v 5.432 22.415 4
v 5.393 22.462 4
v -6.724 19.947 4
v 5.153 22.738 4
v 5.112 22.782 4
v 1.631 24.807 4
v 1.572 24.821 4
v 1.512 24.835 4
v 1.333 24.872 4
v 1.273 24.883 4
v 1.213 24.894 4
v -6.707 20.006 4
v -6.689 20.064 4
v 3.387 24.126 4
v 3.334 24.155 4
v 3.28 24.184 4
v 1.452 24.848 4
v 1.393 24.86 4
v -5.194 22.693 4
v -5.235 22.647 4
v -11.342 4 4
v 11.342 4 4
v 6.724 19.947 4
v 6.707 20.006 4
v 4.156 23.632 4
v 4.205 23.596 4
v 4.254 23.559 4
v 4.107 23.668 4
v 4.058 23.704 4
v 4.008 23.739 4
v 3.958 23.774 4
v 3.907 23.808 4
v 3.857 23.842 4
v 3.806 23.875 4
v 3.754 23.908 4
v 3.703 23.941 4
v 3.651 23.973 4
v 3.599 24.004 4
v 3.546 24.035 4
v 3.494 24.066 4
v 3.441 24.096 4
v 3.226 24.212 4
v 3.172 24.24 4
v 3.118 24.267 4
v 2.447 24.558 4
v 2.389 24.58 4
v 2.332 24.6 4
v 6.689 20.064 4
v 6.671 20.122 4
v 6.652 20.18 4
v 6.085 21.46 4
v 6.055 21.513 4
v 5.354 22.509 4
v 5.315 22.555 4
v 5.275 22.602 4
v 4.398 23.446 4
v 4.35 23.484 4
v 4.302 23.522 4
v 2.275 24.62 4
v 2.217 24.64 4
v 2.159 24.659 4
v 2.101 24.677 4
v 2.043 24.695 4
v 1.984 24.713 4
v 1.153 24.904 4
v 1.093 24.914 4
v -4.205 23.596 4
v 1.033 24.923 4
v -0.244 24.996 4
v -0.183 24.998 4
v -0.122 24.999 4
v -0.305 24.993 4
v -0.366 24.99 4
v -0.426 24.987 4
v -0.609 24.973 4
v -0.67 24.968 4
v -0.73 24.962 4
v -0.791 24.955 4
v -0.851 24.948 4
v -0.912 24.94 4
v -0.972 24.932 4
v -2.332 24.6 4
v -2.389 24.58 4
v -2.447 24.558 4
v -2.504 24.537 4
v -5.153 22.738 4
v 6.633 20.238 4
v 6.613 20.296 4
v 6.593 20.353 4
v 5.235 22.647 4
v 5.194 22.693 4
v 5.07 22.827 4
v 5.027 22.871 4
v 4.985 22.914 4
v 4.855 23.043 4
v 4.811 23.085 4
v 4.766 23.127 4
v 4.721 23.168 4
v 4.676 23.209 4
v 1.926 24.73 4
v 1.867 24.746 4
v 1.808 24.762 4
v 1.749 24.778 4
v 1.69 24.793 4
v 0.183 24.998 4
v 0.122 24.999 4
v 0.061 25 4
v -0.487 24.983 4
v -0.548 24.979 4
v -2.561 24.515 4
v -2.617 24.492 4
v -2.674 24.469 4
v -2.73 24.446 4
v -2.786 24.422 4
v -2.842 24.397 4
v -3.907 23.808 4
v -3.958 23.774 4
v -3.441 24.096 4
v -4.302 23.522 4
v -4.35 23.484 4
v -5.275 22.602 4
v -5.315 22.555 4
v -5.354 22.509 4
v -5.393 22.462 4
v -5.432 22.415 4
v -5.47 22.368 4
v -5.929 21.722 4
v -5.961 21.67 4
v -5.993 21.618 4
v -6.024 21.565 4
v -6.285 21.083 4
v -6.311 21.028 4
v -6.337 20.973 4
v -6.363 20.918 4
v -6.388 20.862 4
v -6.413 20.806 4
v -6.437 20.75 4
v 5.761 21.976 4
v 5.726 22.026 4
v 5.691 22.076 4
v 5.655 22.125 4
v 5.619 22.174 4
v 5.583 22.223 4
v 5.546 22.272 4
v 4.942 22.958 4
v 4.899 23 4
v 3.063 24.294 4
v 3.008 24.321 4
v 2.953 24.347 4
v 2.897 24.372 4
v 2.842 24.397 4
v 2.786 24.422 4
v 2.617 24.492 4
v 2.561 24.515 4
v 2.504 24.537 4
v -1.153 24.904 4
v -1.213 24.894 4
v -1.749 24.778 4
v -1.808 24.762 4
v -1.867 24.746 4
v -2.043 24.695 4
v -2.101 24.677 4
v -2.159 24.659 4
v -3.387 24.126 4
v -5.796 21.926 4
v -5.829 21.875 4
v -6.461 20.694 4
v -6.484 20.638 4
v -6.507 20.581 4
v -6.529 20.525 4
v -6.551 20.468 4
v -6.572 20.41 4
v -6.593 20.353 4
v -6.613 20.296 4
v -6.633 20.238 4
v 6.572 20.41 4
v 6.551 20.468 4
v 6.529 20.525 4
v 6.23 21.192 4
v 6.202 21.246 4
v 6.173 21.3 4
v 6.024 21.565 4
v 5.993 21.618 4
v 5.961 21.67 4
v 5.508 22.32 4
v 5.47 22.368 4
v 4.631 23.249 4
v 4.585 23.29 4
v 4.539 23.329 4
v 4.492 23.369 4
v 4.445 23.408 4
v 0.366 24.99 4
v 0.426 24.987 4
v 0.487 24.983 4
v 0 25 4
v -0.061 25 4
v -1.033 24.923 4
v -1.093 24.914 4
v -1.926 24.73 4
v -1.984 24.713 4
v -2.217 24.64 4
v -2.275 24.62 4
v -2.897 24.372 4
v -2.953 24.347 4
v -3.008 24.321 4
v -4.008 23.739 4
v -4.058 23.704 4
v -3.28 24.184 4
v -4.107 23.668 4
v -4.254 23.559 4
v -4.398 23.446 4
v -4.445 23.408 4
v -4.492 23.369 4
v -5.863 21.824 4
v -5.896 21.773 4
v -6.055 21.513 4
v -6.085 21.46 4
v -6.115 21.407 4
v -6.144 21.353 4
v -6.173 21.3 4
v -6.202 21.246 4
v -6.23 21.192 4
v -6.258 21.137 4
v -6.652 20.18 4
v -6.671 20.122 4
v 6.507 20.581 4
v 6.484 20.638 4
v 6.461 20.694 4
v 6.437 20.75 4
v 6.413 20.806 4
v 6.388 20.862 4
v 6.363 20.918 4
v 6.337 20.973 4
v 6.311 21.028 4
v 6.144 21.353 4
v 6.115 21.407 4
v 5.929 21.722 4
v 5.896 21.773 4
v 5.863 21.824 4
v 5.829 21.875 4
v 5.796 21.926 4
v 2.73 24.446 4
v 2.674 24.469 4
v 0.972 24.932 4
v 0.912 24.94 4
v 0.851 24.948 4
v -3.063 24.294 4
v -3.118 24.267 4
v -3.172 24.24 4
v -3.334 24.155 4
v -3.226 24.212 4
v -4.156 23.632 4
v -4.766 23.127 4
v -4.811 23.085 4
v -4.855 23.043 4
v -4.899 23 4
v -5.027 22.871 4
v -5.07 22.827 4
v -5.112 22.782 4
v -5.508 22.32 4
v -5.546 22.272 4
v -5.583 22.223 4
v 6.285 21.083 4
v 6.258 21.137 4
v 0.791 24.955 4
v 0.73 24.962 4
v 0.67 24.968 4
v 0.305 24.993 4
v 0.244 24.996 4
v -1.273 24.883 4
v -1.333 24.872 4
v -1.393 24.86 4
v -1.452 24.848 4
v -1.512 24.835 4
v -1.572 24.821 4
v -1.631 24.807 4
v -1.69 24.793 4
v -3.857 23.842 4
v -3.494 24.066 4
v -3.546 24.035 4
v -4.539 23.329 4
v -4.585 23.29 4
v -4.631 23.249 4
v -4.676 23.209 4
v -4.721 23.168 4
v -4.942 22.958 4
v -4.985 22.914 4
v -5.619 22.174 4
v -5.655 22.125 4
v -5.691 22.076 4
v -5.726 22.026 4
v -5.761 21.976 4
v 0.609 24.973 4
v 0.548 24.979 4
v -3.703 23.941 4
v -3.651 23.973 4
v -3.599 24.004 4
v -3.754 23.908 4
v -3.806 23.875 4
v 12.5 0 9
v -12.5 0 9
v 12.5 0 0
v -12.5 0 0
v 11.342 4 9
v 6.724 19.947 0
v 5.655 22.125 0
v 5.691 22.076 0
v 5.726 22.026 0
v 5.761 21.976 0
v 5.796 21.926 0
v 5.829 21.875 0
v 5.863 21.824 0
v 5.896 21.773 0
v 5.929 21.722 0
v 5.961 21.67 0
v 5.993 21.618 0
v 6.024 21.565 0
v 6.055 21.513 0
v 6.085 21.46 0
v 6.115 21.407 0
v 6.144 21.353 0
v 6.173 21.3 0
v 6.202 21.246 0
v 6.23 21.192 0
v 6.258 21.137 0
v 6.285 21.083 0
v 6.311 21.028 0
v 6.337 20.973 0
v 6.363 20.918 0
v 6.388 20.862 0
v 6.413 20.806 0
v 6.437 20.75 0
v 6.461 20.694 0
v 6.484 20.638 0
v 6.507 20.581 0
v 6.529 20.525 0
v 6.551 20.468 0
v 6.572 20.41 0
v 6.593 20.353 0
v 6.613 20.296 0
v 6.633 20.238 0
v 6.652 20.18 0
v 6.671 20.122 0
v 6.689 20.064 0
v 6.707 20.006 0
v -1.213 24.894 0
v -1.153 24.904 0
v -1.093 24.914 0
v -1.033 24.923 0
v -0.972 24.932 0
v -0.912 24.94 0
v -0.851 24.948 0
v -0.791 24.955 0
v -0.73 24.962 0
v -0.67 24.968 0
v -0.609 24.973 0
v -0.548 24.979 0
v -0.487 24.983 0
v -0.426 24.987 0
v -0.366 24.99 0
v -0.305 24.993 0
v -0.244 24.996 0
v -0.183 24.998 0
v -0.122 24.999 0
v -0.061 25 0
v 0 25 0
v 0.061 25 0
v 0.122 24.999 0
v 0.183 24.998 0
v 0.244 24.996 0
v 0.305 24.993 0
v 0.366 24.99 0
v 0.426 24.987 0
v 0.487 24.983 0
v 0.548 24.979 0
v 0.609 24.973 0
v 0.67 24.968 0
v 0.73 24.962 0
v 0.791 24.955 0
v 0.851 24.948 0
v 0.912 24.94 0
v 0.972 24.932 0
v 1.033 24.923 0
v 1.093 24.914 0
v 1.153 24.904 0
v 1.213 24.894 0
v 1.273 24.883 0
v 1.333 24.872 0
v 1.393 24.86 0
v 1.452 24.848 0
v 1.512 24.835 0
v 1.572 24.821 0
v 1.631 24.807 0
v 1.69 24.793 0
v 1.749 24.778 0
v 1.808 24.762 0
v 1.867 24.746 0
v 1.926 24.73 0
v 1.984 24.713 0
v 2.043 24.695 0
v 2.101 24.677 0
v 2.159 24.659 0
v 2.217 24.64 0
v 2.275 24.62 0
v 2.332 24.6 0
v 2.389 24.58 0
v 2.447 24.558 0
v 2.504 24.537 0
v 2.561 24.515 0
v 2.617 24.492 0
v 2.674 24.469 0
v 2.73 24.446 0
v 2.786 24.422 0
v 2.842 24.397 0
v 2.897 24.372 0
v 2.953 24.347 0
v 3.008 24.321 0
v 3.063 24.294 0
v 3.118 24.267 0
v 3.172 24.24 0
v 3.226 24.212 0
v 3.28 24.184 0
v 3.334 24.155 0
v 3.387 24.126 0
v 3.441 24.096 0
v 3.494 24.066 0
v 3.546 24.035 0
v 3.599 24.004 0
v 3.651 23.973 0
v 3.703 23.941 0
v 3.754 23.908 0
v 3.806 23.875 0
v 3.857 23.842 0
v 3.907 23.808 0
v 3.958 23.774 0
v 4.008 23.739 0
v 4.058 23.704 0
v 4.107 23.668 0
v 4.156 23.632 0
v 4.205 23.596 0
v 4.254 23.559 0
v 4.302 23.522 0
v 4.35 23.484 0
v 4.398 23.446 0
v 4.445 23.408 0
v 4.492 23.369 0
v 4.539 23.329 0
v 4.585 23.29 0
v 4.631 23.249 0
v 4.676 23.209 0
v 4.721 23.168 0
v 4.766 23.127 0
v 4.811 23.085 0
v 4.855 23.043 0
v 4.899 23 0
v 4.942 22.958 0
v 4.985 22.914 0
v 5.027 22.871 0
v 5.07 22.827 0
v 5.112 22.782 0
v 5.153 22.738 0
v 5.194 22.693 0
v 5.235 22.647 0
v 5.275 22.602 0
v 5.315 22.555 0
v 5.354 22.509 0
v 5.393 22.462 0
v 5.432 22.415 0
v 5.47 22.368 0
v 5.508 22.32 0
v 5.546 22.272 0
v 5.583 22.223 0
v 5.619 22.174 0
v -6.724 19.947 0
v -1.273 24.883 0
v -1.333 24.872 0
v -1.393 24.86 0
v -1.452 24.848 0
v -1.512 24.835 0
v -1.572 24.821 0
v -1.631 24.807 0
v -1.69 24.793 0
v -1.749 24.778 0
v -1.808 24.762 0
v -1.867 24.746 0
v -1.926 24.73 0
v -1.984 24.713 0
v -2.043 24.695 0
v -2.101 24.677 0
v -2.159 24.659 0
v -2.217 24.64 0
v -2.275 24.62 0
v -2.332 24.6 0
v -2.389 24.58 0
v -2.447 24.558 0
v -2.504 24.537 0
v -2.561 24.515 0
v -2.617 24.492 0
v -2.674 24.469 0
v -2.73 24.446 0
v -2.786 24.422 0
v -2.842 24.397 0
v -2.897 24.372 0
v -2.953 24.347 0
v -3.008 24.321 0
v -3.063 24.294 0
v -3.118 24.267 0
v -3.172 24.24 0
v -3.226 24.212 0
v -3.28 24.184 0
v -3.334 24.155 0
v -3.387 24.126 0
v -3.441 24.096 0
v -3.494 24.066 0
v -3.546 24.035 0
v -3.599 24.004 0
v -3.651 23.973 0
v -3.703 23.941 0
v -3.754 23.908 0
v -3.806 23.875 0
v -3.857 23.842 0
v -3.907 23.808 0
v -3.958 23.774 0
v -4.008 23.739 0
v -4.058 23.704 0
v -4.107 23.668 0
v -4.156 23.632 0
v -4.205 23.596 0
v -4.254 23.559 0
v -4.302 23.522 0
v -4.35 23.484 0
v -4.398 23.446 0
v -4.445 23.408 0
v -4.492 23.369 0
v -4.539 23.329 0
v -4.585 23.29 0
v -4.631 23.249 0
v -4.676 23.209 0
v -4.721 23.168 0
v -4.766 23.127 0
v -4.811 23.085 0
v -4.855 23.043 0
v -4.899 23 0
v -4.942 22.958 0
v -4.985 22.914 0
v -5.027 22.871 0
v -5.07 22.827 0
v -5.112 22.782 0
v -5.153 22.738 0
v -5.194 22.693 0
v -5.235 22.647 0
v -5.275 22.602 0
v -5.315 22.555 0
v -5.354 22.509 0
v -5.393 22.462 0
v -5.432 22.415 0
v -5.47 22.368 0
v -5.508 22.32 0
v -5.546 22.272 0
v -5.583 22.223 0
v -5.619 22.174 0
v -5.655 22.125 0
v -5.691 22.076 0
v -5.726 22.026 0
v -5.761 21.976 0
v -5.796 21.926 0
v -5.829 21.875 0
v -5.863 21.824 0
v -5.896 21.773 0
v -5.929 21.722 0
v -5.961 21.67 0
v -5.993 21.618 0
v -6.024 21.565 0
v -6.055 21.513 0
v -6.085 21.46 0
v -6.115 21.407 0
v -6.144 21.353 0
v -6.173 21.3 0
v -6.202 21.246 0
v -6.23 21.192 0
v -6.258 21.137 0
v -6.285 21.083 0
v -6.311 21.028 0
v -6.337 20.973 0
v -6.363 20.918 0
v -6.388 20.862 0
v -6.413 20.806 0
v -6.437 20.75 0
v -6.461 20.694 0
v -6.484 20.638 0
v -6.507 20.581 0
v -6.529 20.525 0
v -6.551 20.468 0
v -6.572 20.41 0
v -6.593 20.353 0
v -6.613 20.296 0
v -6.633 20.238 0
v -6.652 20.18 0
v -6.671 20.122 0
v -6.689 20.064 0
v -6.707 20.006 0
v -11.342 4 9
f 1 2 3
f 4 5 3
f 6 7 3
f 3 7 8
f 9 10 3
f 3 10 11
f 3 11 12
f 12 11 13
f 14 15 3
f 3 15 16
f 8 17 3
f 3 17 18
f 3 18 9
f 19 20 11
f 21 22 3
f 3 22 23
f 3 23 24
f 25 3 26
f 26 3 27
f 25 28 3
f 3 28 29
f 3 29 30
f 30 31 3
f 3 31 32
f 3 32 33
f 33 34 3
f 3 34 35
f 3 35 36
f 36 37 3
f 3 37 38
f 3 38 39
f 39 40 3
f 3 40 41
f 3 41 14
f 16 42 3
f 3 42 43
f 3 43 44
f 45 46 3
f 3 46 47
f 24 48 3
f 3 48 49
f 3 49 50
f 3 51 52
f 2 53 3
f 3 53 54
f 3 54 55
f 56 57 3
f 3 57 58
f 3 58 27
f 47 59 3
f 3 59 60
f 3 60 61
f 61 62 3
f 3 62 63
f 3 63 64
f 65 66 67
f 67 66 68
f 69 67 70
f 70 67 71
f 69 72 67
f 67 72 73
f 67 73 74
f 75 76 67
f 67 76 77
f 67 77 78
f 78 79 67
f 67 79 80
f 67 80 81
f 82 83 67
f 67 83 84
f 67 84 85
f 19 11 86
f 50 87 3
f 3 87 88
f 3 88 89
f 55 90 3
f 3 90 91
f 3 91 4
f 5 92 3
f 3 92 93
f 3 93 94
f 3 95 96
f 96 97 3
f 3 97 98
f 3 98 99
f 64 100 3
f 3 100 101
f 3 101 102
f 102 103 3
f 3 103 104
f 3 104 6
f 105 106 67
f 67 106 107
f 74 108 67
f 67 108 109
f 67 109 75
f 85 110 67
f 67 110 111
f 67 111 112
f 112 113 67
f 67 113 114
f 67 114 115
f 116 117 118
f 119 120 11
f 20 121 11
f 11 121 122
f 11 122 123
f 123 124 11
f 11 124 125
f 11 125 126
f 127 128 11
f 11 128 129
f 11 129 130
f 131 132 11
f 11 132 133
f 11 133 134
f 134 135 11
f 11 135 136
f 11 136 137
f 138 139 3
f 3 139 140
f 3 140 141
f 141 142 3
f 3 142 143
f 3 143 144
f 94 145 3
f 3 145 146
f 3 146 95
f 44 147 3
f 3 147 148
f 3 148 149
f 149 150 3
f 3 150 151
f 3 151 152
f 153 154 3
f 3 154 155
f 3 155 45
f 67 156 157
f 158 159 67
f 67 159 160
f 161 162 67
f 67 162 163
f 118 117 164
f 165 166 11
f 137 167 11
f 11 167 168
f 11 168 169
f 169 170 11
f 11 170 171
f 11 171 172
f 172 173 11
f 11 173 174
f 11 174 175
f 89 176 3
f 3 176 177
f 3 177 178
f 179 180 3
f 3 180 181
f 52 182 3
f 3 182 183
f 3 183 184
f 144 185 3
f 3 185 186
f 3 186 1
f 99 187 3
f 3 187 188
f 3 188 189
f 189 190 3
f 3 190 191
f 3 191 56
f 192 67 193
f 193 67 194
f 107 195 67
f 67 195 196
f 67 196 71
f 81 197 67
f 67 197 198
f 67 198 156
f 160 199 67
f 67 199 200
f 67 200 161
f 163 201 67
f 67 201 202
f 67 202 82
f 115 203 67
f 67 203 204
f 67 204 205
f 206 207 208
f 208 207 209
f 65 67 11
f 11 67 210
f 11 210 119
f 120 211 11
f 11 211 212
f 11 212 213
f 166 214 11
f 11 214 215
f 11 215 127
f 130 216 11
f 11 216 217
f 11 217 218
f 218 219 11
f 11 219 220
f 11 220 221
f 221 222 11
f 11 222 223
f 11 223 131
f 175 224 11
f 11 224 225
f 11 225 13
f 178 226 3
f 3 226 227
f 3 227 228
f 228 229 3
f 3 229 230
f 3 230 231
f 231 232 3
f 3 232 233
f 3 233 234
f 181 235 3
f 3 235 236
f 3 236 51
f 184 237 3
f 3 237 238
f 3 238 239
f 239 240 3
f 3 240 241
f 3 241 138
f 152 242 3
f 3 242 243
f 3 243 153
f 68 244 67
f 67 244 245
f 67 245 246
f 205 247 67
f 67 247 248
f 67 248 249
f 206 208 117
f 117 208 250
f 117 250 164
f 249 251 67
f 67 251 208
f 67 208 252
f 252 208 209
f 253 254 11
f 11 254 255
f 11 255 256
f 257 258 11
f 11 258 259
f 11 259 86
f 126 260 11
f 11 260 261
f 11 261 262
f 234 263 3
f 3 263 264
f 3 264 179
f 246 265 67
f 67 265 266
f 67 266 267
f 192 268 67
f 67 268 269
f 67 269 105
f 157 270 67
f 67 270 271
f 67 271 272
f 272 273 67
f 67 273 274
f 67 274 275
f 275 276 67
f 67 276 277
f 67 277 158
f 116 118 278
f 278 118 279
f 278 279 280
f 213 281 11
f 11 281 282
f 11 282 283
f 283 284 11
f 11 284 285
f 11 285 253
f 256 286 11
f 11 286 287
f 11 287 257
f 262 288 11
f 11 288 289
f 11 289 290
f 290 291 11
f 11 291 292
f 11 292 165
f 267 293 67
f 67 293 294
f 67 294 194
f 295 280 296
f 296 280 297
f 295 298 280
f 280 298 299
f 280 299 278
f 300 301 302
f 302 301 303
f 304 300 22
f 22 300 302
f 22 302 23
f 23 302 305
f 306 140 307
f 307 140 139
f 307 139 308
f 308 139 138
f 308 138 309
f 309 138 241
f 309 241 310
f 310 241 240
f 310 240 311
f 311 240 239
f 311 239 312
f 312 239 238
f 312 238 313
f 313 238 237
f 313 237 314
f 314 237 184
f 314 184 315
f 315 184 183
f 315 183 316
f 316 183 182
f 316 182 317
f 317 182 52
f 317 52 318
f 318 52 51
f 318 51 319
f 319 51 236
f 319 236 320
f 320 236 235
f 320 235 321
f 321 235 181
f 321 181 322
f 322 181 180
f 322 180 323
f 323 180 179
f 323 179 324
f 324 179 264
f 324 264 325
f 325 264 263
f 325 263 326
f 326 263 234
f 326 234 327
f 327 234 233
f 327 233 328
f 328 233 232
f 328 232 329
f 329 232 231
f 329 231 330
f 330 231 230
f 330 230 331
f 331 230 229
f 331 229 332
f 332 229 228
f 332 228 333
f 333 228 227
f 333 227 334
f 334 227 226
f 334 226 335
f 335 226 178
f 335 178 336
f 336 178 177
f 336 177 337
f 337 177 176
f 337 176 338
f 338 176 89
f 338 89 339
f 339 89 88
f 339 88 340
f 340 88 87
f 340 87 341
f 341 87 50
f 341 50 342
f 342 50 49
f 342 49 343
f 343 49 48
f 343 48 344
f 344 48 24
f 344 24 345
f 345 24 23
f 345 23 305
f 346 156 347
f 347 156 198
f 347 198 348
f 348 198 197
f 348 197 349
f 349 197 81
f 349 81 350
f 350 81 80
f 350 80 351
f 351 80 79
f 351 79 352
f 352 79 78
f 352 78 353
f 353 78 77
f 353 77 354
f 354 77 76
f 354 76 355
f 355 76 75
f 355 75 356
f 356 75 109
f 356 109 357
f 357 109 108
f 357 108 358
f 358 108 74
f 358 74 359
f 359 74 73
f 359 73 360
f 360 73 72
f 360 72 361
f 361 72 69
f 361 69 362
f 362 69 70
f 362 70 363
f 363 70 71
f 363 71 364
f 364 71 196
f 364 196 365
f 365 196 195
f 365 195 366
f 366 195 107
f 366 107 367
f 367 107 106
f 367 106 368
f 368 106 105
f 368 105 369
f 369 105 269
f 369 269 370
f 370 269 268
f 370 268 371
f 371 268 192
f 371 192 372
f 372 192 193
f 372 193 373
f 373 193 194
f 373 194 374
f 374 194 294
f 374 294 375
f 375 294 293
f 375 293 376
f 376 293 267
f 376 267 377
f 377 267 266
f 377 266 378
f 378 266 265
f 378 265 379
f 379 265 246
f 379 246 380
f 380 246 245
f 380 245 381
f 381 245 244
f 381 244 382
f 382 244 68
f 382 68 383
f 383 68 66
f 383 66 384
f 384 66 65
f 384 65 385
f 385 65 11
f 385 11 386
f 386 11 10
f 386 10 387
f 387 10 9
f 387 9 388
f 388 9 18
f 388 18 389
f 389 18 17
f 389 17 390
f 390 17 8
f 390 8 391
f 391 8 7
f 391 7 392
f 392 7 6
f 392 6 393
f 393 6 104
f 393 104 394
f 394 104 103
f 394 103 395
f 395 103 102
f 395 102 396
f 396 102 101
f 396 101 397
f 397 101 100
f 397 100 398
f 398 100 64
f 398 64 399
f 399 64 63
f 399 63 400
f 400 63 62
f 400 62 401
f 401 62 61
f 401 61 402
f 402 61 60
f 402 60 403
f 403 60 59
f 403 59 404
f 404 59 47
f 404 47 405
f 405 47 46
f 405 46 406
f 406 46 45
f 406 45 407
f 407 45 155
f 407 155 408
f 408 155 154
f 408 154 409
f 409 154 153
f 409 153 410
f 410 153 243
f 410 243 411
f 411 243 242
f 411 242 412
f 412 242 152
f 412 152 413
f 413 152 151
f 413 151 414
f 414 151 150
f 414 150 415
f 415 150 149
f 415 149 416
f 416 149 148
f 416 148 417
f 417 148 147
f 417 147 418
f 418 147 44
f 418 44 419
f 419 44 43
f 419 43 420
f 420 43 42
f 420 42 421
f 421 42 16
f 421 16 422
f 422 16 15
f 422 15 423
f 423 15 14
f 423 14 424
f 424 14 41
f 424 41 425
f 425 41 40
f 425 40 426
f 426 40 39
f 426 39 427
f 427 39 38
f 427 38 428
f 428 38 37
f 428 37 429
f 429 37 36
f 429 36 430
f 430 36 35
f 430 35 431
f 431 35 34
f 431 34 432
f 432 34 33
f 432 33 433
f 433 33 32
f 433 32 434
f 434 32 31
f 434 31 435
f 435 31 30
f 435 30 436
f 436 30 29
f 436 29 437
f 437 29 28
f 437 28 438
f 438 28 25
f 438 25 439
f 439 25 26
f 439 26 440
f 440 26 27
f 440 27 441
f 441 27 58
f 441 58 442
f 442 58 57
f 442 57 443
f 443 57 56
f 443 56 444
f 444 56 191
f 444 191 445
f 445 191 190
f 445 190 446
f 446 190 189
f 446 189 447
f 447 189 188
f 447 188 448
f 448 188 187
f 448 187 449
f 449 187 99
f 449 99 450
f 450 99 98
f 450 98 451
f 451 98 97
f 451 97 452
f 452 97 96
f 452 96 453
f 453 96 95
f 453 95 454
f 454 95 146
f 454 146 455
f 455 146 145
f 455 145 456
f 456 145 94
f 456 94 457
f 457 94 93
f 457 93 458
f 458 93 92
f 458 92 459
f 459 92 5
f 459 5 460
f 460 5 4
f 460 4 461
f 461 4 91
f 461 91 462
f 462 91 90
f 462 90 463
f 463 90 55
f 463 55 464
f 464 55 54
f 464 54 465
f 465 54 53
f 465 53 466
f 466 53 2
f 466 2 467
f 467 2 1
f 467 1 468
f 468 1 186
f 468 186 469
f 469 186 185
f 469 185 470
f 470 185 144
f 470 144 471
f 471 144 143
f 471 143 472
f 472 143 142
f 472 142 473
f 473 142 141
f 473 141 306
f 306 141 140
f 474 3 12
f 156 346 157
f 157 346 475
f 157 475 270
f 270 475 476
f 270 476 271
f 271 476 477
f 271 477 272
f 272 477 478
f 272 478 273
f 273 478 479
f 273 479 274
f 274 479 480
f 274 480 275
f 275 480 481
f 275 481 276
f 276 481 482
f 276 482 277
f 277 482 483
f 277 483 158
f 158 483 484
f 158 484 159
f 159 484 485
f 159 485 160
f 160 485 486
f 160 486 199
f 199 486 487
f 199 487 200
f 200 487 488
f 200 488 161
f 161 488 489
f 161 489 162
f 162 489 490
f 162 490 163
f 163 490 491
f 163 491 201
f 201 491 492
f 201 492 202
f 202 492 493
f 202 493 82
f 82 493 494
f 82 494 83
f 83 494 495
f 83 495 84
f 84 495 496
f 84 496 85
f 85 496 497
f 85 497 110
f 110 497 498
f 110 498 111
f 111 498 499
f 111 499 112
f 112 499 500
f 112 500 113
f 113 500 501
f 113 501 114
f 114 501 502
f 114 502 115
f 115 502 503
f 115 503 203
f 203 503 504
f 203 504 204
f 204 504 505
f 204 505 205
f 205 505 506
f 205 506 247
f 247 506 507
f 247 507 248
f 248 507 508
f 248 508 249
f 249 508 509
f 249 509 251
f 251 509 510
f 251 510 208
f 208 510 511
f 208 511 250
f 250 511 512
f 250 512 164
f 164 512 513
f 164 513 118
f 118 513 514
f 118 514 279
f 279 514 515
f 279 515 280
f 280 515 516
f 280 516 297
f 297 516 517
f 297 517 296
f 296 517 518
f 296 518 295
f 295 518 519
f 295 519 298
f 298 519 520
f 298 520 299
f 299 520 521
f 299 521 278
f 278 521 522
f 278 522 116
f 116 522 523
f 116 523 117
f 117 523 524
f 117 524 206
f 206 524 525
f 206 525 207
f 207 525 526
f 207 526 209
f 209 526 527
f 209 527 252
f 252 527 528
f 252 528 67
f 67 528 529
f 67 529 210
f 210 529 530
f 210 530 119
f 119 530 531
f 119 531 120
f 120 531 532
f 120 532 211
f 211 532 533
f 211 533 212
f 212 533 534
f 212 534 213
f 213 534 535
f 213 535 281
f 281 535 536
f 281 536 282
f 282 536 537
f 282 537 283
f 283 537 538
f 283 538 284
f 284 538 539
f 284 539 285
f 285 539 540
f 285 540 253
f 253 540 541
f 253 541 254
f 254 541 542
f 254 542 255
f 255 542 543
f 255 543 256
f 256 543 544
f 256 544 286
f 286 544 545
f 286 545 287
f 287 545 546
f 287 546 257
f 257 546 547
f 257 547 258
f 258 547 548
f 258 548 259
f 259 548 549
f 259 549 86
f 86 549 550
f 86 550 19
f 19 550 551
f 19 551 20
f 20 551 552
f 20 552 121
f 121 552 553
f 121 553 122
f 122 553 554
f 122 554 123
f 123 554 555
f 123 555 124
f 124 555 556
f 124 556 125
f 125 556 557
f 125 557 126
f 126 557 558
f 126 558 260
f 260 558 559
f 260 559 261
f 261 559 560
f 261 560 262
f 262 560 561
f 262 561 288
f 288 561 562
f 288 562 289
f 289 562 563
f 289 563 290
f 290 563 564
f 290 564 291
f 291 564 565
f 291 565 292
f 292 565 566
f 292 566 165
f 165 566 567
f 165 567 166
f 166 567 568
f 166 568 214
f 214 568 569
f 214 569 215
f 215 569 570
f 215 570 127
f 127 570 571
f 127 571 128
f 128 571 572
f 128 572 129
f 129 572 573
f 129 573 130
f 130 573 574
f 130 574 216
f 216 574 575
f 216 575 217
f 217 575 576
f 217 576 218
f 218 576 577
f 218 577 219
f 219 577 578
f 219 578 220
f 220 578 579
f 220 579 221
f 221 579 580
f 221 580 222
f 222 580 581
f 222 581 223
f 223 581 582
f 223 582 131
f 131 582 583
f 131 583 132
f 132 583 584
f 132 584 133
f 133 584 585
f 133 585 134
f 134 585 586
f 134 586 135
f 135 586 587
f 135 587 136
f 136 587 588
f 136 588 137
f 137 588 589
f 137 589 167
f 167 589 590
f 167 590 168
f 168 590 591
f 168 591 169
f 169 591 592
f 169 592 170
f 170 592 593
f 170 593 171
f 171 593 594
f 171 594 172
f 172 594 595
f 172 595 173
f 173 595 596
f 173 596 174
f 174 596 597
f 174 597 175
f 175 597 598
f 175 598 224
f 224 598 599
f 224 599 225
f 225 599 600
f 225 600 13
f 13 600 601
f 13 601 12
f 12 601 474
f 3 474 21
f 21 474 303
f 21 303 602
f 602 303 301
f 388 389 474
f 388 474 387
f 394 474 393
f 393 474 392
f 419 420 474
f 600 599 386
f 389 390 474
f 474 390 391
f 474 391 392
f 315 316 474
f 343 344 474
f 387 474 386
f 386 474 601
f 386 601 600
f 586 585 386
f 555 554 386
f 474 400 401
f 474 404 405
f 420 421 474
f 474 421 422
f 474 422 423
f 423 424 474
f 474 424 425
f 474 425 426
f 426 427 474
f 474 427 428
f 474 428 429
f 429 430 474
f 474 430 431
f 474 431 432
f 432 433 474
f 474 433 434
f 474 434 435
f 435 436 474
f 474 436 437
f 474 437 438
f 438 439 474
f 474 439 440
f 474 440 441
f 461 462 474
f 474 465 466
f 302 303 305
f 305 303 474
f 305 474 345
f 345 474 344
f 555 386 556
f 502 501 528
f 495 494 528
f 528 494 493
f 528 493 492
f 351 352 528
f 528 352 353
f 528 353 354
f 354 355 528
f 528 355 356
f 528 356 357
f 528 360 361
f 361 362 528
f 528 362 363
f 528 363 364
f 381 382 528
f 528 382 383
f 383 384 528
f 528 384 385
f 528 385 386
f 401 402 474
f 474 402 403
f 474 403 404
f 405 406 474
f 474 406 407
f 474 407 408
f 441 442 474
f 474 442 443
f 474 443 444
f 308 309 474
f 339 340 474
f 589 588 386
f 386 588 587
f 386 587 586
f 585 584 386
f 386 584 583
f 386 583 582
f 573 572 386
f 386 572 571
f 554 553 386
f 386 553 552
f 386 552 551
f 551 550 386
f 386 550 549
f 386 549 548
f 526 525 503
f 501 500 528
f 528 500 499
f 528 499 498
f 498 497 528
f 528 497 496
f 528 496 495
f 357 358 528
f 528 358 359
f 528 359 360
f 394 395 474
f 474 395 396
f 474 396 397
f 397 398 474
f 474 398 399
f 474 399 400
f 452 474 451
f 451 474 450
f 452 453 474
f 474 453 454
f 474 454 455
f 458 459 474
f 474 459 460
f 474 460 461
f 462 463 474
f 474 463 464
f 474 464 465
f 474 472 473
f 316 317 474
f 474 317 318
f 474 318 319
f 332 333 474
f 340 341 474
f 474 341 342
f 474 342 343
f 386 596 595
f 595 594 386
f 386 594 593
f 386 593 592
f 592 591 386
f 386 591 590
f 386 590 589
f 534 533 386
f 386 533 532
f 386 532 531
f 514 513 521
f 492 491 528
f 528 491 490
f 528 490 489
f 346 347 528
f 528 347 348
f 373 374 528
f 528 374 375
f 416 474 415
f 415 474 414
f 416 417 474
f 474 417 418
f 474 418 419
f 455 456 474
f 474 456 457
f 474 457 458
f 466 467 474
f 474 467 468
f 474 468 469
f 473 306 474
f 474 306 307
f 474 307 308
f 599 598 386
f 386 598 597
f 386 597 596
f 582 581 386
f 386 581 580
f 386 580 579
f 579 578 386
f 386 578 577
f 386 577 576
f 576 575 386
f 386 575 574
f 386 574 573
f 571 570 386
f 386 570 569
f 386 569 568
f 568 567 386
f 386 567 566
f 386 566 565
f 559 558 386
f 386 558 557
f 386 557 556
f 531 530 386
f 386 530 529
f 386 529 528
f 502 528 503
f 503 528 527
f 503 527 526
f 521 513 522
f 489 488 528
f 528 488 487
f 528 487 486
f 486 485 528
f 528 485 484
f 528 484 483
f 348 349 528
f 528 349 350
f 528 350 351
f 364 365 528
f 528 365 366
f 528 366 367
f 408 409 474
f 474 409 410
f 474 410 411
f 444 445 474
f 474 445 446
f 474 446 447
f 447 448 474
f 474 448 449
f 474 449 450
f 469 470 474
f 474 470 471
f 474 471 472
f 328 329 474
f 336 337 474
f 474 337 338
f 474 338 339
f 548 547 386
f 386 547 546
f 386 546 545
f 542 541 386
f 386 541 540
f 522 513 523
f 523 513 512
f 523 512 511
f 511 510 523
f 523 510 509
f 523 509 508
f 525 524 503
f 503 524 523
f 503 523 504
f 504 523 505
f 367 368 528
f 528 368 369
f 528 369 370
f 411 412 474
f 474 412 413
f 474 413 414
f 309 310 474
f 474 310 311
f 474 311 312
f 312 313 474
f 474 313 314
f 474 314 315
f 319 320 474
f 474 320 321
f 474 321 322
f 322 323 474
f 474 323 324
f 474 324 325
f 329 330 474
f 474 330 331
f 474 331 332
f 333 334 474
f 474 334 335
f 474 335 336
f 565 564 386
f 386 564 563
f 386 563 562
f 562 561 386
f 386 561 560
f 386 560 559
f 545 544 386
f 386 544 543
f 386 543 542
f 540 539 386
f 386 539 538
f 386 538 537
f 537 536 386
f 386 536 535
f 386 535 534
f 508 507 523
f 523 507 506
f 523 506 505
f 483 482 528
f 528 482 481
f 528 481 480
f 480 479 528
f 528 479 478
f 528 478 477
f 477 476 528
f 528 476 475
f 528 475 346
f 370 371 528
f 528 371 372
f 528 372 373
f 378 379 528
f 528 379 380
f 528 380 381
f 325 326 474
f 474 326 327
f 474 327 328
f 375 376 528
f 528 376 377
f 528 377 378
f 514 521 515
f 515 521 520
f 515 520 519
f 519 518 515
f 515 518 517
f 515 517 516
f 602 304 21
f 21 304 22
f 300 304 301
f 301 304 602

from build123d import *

# Parameters (mm, degrees)
BOSS_EXTRUDE1_DEPTH = 4
BOSS_EXTRUDE2_DEPTH = 5


with BuildPart() as part:
    # Sketch1 → Boss-Extrude1 (new body)
    with BuildSketch(Plane.XY):
        with BuildLine():
            Line((-12.5, 0), (-6.723761618, 19.947056679))
            ThreePointArc((-6.723761618, 19.947056679), (0, 25), (6.723761618, 19.947056679))
            Line((6.723761618, 19.947056679), (12.5, 0))
            Line((12.5, 0), (-12.5, 0))
        make_face()
    extrude(amount=BOSS_EXTRUDE1_DEPTH)

    # Sketch2 → Boss-Extrude2 (add)
    with BuildSketch(Plane.XY.offset(4)):
        Polygon((-12.5, 0), (12.5, 0), (11.341686074, 4), (-11.341686074, 4), align=None)
    extrude(amount=BOSS_EXTRUDE2_DEPTH)


solid = part.part
